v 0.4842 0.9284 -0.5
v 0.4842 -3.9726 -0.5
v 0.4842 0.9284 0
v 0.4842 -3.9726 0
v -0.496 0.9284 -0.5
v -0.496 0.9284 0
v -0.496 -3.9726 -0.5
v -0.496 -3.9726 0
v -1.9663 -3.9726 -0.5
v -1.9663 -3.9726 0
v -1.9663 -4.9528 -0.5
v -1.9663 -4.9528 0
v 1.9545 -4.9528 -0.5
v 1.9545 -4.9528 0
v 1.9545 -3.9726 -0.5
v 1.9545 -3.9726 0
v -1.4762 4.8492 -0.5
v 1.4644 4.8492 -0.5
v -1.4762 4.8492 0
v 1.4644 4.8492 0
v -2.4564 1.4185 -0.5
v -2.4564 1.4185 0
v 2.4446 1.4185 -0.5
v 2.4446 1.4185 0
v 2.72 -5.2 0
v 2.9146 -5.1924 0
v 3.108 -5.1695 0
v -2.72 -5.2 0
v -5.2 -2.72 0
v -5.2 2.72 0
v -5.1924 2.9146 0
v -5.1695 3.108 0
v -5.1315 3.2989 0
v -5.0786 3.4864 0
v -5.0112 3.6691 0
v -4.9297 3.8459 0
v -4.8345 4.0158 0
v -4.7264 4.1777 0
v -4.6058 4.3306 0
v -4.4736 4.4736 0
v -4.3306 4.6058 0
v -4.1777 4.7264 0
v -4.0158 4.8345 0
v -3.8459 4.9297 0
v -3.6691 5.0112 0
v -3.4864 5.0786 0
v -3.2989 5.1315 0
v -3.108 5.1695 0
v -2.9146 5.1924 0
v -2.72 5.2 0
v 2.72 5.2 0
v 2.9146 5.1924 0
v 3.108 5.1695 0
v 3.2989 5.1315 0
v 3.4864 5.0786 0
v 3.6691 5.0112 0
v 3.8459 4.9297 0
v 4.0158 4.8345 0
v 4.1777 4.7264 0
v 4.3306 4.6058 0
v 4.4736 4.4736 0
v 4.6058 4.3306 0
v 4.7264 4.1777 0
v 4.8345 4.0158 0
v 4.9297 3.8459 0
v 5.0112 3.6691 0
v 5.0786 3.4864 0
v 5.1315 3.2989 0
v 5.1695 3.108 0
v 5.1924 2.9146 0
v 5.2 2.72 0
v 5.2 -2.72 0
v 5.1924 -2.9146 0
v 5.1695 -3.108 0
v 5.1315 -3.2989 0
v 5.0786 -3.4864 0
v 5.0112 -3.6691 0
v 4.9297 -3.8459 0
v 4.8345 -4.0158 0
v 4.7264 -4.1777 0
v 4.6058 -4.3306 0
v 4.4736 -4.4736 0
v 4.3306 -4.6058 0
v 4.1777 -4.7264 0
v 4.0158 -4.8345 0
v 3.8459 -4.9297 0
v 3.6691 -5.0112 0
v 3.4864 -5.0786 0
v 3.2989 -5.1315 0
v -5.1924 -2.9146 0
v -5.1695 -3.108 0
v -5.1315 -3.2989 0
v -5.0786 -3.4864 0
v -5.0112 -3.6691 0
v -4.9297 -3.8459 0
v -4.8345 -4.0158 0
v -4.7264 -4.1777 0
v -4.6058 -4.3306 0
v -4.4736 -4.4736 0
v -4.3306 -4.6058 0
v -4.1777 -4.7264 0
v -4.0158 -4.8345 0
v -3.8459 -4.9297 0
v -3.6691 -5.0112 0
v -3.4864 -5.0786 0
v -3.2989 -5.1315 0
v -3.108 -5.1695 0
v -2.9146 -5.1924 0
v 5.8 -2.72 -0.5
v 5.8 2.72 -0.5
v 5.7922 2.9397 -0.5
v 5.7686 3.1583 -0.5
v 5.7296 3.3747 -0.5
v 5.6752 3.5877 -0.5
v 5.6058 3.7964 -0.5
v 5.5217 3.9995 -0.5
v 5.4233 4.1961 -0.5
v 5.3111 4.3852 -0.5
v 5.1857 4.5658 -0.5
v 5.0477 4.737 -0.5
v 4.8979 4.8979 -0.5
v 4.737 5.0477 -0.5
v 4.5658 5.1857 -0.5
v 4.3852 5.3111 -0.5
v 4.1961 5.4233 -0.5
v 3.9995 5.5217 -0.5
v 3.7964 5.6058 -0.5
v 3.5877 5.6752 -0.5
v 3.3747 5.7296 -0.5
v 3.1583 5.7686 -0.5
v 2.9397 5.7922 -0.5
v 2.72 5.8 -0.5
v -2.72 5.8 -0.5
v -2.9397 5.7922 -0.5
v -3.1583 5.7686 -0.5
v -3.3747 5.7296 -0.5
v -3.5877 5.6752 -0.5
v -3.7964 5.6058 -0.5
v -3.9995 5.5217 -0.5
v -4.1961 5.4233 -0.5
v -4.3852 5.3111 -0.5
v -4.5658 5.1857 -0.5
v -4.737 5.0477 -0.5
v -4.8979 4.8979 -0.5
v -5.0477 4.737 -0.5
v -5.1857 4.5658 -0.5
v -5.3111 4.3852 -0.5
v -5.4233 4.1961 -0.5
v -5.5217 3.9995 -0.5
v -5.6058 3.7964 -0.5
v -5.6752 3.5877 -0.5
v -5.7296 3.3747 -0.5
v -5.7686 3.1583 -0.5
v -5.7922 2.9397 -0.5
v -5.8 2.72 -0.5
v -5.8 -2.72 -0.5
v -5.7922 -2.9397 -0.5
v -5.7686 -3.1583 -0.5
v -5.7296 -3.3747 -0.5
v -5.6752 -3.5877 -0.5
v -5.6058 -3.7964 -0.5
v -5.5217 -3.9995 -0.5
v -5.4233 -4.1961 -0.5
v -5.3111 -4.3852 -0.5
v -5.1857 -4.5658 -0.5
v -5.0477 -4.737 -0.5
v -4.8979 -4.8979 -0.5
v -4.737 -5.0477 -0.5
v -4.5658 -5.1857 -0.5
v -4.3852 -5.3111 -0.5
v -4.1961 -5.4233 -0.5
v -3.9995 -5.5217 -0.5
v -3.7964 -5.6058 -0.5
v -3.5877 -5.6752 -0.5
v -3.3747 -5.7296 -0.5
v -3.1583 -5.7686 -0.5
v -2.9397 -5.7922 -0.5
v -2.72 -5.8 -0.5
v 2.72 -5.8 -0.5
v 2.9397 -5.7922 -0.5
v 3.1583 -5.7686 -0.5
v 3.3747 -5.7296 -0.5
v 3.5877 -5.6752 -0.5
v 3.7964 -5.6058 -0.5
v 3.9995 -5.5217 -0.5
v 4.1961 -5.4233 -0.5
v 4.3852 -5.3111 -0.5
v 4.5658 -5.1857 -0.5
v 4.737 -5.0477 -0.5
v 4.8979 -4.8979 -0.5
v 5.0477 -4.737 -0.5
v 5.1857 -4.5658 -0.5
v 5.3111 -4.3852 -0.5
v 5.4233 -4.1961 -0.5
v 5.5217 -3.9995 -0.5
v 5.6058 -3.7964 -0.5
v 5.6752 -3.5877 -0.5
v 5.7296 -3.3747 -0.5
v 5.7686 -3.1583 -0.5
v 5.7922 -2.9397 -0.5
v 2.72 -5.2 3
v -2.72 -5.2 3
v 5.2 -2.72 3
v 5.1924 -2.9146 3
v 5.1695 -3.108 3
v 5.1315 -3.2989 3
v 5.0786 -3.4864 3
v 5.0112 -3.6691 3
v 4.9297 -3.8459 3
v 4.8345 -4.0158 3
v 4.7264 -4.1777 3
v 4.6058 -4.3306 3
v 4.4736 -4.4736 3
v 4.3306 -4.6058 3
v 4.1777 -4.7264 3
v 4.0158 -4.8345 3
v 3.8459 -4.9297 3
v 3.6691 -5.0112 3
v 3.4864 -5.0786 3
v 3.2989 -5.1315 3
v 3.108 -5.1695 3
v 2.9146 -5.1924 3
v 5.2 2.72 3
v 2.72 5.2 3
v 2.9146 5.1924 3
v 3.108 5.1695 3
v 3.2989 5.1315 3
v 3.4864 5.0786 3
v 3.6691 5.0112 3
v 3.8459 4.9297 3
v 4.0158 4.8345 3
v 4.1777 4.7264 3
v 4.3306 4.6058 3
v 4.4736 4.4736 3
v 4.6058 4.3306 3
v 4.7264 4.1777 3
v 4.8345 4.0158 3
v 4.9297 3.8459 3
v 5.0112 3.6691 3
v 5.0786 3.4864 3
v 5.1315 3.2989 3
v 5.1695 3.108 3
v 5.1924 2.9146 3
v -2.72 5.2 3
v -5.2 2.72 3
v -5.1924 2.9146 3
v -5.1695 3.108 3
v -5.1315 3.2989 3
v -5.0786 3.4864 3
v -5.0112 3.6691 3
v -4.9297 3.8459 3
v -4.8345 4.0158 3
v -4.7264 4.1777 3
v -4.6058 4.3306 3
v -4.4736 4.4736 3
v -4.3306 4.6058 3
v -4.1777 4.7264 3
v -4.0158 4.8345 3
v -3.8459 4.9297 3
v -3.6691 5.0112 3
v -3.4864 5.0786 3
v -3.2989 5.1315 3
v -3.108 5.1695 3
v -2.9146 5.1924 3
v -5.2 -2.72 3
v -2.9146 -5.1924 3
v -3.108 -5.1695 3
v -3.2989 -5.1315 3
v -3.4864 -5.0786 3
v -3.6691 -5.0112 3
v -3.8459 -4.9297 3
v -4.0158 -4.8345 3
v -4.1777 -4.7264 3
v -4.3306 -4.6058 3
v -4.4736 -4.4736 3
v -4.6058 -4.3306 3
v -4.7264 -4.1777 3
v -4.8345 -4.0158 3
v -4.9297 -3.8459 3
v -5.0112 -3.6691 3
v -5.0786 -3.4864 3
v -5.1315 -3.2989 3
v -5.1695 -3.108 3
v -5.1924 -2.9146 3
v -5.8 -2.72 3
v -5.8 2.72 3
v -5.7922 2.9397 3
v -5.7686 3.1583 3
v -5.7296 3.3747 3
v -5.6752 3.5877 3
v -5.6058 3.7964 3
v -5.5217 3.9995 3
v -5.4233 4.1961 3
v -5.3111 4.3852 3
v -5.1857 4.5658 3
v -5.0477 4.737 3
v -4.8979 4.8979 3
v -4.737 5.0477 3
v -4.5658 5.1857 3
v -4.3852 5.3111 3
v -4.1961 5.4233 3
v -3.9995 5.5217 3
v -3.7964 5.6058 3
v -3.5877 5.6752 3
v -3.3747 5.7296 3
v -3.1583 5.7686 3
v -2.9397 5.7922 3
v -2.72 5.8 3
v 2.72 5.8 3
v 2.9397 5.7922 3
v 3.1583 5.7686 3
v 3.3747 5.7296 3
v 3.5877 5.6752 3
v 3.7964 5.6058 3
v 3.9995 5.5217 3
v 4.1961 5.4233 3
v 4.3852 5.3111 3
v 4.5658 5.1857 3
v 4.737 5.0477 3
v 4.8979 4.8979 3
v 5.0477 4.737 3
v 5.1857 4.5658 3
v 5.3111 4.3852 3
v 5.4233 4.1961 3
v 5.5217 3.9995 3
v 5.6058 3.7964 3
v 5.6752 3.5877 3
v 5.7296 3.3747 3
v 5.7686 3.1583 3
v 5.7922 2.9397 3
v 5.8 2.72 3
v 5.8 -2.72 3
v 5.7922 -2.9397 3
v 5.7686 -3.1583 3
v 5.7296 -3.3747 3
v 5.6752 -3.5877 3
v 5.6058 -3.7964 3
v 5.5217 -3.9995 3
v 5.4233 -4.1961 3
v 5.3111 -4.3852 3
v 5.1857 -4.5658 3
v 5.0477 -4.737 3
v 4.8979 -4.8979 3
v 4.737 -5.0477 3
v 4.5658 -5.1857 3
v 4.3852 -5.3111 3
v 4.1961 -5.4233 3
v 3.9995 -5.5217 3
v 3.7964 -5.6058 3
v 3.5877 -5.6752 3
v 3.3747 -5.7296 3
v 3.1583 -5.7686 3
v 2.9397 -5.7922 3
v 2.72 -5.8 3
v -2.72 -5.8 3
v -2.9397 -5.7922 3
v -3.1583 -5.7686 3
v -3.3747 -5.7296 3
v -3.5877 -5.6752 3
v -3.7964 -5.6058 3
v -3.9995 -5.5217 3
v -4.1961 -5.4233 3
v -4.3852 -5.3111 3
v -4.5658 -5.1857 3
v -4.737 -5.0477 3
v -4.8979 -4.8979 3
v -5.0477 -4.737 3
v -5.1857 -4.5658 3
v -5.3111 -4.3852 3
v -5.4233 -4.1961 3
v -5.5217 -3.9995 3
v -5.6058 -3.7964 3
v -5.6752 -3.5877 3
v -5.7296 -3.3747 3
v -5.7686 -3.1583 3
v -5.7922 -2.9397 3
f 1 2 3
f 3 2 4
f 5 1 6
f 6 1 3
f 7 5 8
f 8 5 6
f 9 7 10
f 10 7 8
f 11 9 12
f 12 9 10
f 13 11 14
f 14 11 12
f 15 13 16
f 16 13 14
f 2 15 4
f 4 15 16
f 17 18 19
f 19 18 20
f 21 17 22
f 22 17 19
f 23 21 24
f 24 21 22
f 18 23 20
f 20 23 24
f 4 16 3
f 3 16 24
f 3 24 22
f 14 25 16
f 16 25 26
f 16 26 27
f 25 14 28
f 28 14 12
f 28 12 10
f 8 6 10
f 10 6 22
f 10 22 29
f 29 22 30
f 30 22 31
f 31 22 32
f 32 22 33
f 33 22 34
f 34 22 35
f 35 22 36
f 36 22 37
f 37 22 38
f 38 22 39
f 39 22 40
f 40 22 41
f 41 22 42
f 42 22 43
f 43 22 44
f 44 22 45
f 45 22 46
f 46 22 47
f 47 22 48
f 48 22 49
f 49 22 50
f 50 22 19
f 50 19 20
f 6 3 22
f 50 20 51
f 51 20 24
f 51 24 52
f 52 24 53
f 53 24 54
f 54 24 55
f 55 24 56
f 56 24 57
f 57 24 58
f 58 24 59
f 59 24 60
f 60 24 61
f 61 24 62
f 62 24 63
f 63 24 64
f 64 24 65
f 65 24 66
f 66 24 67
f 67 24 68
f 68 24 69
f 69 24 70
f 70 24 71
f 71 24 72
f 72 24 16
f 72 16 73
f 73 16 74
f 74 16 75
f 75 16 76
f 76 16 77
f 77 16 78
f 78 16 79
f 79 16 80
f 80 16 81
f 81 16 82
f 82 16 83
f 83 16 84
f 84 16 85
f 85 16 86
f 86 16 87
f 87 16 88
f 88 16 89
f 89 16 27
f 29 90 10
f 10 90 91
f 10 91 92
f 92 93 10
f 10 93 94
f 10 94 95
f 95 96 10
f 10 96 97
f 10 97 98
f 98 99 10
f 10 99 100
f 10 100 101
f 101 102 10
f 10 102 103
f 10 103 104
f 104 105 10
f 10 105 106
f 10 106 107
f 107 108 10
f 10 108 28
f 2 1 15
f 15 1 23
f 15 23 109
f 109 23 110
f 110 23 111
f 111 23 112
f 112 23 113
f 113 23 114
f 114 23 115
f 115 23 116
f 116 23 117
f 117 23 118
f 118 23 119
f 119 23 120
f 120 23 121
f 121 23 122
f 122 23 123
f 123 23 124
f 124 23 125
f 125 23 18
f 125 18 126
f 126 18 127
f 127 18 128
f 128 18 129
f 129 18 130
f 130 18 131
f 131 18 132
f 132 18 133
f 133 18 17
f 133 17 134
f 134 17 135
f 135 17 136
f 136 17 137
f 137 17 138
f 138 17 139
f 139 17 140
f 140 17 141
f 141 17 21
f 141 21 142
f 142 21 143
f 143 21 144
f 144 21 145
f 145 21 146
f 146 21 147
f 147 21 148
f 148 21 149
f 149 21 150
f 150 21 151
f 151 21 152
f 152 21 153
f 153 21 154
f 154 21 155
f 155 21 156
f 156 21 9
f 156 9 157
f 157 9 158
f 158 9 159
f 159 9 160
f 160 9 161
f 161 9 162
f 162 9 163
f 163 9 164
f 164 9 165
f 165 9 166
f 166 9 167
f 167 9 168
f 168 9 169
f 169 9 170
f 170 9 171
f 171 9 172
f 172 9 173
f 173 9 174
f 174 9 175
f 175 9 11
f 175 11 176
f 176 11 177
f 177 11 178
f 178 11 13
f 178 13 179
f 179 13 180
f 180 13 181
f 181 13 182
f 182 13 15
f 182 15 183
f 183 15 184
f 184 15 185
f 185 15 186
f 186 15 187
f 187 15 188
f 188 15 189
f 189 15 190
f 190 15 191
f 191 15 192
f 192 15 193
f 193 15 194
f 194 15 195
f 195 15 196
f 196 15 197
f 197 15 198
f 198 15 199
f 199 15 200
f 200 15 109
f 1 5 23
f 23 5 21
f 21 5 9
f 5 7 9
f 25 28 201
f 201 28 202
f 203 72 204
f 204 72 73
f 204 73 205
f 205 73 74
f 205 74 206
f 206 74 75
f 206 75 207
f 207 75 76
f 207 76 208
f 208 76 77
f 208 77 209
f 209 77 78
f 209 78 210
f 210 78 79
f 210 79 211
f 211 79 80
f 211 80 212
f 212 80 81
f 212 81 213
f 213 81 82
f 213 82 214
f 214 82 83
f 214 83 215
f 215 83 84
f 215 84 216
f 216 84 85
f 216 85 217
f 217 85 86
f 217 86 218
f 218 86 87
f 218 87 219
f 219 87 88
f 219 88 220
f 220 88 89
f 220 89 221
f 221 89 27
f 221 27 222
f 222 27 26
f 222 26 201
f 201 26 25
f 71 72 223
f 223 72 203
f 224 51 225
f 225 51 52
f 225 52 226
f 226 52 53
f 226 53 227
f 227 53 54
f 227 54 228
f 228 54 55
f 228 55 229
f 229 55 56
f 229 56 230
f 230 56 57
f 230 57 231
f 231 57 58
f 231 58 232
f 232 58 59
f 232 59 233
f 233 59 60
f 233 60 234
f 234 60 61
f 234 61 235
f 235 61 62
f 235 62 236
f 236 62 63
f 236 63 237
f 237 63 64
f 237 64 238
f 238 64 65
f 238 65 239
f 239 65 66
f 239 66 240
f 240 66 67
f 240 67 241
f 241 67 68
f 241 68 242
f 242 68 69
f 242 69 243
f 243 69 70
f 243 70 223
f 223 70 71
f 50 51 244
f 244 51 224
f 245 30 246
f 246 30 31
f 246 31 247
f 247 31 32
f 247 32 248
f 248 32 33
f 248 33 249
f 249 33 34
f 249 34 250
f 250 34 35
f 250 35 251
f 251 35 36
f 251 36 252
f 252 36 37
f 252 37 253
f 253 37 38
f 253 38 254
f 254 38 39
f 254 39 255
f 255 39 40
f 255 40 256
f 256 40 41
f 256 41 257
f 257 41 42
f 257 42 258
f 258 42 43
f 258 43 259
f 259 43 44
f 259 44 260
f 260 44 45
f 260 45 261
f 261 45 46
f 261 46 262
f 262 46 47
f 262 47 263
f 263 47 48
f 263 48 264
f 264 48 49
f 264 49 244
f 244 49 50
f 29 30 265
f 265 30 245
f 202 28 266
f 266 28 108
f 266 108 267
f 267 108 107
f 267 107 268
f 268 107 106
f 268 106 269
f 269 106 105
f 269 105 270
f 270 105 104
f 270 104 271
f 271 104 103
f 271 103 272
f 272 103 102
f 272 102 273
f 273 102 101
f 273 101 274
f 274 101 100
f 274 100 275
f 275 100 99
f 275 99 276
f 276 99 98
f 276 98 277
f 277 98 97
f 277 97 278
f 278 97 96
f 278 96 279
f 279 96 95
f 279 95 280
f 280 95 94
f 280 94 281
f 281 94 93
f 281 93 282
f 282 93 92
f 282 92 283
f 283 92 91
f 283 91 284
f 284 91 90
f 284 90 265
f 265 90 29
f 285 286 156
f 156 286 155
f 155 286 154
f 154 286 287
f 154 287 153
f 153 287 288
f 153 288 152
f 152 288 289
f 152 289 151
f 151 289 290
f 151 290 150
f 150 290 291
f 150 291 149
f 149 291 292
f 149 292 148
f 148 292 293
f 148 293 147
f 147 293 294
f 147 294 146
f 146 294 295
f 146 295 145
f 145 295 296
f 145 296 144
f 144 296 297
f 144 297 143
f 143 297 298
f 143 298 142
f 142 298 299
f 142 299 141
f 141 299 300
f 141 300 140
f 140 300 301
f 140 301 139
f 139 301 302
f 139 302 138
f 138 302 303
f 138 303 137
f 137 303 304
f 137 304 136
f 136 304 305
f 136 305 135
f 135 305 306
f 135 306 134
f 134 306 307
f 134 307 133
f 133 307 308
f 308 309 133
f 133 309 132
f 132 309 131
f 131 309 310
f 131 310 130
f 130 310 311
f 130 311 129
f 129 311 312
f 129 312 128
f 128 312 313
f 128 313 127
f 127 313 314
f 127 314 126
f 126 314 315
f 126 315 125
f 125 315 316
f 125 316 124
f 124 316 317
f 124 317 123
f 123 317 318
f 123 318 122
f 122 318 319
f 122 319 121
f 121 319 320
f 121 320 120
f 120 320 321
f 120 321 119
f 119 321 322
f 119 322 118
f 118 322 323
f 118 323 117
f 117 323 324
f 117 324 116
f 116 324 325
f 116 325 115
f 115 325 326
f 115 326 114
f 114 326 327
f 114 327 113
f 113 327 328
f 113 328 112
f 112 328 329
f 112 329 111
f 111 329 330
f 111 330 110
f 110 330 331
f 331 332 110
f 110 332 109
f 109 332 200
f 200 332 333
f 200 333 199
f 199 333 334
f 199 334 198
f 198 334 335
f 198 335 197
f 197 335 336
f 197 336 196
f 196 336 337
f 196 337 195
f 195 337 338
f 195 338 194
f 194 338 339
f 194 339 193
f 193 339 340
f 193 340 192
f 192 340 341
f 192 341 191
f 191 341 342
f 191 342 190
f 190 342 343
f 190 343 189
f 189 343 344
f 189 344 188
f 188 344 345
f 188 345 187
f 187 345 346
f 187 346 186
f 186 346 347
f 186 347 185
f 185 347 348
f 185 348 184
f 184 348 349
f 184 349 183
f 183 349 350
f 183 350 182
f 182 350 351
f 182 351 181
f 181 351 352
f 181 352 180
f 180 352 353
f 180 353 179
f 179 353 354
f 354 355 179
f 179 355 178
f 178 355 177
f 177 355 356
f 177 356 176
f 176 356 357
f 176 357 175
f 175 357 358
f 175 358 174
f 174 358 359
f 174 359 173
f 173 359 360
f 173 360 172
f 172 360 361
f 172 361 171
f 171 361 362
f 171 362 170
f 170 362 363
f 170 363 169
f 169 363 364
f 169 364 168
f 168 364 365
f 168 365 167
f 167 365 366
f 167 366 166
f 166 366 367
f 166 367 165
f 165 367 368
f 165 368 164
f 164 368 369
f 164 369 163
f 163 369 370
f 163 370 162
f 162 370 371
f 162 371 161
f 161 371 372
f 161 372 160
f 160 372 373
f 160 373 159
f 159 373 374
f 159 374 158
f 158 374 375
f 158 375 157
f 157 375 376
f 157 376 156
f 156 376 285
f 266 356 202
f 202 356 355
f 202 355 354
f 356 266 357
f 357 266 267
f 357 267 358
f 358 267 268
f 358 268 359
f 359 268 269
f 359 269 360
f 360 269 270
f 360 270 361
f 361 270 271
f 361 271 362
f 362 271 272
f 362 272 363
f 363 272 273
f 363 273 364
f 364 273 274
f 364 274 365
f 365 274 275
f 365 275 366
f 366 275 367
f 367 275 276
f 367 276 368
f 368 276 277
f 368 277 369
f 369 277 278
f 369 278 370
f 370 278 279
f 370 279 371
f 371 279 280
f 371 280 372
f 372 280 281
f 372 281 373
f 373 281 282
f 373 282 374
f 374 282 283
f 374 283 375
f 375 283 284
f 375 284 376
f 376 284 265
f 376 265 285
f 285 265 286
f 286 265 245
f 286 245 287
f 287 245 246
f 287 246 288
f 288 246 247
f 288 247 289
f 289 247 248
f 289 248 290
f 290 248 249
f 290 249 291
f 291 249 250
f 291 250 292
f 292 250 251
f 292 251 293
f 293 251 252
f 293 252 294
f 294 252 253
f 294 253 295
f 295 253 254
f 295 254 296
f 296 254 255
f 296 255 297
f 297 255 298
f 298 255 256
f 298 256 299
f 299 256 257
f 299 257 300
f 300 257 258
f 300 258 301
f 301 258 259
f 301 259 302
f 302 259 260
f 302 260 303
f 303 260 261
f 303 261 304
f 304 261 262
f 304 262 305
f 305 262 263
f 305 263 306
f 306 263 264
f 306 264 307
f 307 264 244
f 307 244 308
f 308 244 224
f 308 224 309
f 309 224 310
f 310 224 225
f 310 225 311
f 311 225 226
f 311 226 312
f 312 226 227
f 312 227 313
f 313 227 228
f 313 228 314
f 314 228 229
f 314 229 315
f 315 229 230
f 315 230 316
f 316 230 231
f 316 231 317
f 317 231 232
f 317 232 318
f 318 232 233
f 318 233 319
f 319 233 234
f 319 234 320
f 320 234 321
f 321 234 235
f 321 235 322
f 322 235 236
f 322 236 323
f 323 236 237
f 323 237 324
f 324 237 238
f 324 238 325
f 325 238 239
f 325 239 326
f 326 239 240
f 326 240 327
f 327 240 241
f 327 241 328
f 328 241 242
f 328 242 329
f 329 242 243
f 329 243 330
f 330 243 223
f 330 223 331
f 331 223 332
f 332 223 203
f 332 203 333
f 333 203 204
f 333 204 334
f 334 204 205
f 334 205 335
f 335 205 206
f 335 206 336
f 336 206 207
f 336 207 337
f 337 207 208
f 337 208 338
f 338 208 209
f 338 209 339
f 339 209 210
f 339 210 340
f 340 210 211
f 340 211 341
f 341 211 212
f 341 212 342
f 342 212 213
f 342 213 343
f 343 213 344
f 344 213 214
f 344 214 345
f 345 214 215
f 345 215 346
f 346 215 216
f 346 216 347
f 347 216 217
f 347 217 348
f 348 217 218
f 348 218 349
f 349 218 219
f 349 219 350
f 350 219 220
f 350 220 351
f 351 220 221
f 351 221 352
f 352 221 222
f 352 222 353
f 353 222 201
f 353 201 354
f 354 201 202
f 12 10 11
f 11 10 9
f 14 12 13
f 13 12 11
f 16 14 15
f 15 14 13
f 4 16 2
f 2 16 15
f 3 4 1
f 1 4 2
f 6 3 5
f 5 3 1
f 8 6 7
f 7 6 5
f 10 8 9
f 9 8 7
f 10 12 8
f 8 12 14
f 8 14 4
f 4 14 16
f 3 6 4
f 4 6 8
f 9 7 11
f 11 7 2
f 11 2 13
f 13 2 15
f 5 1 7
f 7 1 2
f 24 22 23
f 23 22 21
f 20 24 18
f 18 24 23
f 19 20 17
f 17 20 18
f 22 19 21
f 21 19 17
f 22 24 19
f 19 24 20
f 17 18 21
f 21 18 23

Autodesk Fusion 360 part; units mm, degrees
sketch "Sketch1" plane through (0, 0, 0) normal (0, 0, 1) x (1, 0, 0)
  line L0 (2.72, 5) -> (-2.72, 5)
  line L1 (-5, 2.72) -> (-5, -2.72)
  line L2 (-2.72, -5) -> (2.72, -5)
  line L3 (5, -2.72) -> (5, 2.72)
  line L4 (5, 5) -> (-5, -5) construction
  line L5 (-5, 5) -> (5, -5) construction
  arc A0 (5, 2.72) -> (2.72, 5) centre (2.72, 2.72) ccw
  arc A1 (2.72, -5) -> (5, -2.72) centre (2.72, -2.72) ccw
  arc A2 (-5, -2.72) -> (-2.72, -5) centre (-2.72, -2.72) ccw
  arc A3 (-2.72, 5) -> (-5, 2.72) centre (-2.72, 2.72) ccw
  line L6 (-2.72, -5.2) -> (2.72, -5.2)
  arc A4 (2.72, -5.2) -> (5.2, -2.72) centre (2.72, -2.72) ccw
  line L7 (5.2, -2.72) -> (5.2, 2.72)
  arc A5 (5.2, 2.72) -> (2.72, 5.2) centre (2.72, 2.72) ccw
  line L8 (2.72, 5.2) -> (-2.72, 5.2)
  arc A6 (-2.72, 5.2) -> (-5.2, 2.72) centre (-2.72, 2.72) ccw
  line L9 (-5.2, 2.72) -> (-5.2, -2.72)
  arc A7 (-5.2, -2.72) -> (-2.72, -5.2) centre (-2.72, -2.72) ccw
  line L10 (-2.72, -5.8) -> (2.72, -5.8)
  arc A8 (2.72, -5.8) -> (5.8, -2.72) centre (2.72, -2.72) ccw
  line L11 (5.8, -2.72) -> (5.8, 2.72)
  arc A9 (5.8, 2.72) -> (2.72, 5.8) centre (2.72, 2.72) ccw
  line L12 (2.72, 5.8) -> (-2.72, 5.8)
  arc A10 (-2.72, 5.8) -> (-5.8, 2.72) centre (-2.72, 2.72) ccw
  line L13 (-5.8, 2.72) -> (-5.8, -2.72)
  arc A11 (-5.8, -2.72) -> (-2.72, -5.8) centre (-2.72, -2.72) ccw
  dimension "d1" = 10
  dimension "d2" = 10
  dimension "d3" = 2.28
  dimension "d4" = 0.2
  dimension "d5" = 0.8
extrude "Extrude1" add sketch "Sketch1" along normal blind 3 contours L10 A8 L11 A9 L12 A10 L13 A11 makes body 1
extrude "Extrude2" add sketch "Sketch1" against normal blind 0.5 contours L0 L1 L2 L3 A0 A1 A2 A3 | L6 A4 L7 A5 L8 A6 L9 A7 | L10 A8 L11 A9 L12 A10 L13 A11 bodies 1
sketch "Sketch2" plane through (0, 0, 0) normal (0, 0, 1) x (1, 0, 0)
  line L0 (-2.72, -5.2) -> (2.72, -5.2)
  arc A0 (2.72, -5.2) -> (5.2, -2.72) centre (2.72, -2.72) ccw
  line L1 (5.2, -2.72) -> (5.2, 2.72)
  arc A1 (5.2, 2.72) -> (2.72, 5.2) centre (2.72, 2.72) ccw
  line L2 (2.72, 5.2) -> (-2.72, 5.2)
  arc A2 (-2.72, 5.2) -> (-5.2, 2.72) centre (-2.72, 2.72) ccw
  line L3 (-5.2, 2.72) -> (-5.2, -2.72)
  arc A3 (-5.2, -2.72) -> (-2.72, -5.2) centre (-2.72, -2.72) ccw
  line L4 (1.4644, 4.8492) -> (2.4446, 1.4185)
  line L5 (2.4446, 1.4185) -> (-2.4564, 1.4185)
  line L6 (-2.4564, 1.4185) -> (-1.4762, 4.8492)
  line L7 (-0.496, 0.9284) -> (0.4842, 0.9284)
  line L8 (0.4842, 0.9284) -> (0.4842, -3.9726)
  line L9 (0.4842, -3.9726) -> (1.9545, -3.9726)
  line L10 (1.9545, -3.9726) -> (1.9545, -4.9528)
  line L11 (1.9545, -4.9528) -> (-1.9663, -4.9528)
  line L12 (-1.9663, -4.9528) -> (-1.9663, -3.9726)
  line L13 (-1.9663, -3.9726) -> (-0.496, -3.9726)
  line L14 (-0.496, -3.9726) -> (-0.496, 0.9284)
  line L15 (-1.4762, 4.8492) -> (1.4644, 4.8492)
extrude "Extrude3" cut sketch "Sketch2" against normal through all contours L4 L5 L6 L15 | L7 L8 L9 L10 L11 L12 L13 L14 bodies 1
extrude "Extrude4" add sketch "Sketch2" against normal blind 0.5 separate body contours L4 L5 L6 L15 | L7 L8 L9 L10 L11 L12 L13 L14 makes body 2 at (0.1575, -4.6261, 0) makes body 3 at (0.4842, 2.562, 0)
